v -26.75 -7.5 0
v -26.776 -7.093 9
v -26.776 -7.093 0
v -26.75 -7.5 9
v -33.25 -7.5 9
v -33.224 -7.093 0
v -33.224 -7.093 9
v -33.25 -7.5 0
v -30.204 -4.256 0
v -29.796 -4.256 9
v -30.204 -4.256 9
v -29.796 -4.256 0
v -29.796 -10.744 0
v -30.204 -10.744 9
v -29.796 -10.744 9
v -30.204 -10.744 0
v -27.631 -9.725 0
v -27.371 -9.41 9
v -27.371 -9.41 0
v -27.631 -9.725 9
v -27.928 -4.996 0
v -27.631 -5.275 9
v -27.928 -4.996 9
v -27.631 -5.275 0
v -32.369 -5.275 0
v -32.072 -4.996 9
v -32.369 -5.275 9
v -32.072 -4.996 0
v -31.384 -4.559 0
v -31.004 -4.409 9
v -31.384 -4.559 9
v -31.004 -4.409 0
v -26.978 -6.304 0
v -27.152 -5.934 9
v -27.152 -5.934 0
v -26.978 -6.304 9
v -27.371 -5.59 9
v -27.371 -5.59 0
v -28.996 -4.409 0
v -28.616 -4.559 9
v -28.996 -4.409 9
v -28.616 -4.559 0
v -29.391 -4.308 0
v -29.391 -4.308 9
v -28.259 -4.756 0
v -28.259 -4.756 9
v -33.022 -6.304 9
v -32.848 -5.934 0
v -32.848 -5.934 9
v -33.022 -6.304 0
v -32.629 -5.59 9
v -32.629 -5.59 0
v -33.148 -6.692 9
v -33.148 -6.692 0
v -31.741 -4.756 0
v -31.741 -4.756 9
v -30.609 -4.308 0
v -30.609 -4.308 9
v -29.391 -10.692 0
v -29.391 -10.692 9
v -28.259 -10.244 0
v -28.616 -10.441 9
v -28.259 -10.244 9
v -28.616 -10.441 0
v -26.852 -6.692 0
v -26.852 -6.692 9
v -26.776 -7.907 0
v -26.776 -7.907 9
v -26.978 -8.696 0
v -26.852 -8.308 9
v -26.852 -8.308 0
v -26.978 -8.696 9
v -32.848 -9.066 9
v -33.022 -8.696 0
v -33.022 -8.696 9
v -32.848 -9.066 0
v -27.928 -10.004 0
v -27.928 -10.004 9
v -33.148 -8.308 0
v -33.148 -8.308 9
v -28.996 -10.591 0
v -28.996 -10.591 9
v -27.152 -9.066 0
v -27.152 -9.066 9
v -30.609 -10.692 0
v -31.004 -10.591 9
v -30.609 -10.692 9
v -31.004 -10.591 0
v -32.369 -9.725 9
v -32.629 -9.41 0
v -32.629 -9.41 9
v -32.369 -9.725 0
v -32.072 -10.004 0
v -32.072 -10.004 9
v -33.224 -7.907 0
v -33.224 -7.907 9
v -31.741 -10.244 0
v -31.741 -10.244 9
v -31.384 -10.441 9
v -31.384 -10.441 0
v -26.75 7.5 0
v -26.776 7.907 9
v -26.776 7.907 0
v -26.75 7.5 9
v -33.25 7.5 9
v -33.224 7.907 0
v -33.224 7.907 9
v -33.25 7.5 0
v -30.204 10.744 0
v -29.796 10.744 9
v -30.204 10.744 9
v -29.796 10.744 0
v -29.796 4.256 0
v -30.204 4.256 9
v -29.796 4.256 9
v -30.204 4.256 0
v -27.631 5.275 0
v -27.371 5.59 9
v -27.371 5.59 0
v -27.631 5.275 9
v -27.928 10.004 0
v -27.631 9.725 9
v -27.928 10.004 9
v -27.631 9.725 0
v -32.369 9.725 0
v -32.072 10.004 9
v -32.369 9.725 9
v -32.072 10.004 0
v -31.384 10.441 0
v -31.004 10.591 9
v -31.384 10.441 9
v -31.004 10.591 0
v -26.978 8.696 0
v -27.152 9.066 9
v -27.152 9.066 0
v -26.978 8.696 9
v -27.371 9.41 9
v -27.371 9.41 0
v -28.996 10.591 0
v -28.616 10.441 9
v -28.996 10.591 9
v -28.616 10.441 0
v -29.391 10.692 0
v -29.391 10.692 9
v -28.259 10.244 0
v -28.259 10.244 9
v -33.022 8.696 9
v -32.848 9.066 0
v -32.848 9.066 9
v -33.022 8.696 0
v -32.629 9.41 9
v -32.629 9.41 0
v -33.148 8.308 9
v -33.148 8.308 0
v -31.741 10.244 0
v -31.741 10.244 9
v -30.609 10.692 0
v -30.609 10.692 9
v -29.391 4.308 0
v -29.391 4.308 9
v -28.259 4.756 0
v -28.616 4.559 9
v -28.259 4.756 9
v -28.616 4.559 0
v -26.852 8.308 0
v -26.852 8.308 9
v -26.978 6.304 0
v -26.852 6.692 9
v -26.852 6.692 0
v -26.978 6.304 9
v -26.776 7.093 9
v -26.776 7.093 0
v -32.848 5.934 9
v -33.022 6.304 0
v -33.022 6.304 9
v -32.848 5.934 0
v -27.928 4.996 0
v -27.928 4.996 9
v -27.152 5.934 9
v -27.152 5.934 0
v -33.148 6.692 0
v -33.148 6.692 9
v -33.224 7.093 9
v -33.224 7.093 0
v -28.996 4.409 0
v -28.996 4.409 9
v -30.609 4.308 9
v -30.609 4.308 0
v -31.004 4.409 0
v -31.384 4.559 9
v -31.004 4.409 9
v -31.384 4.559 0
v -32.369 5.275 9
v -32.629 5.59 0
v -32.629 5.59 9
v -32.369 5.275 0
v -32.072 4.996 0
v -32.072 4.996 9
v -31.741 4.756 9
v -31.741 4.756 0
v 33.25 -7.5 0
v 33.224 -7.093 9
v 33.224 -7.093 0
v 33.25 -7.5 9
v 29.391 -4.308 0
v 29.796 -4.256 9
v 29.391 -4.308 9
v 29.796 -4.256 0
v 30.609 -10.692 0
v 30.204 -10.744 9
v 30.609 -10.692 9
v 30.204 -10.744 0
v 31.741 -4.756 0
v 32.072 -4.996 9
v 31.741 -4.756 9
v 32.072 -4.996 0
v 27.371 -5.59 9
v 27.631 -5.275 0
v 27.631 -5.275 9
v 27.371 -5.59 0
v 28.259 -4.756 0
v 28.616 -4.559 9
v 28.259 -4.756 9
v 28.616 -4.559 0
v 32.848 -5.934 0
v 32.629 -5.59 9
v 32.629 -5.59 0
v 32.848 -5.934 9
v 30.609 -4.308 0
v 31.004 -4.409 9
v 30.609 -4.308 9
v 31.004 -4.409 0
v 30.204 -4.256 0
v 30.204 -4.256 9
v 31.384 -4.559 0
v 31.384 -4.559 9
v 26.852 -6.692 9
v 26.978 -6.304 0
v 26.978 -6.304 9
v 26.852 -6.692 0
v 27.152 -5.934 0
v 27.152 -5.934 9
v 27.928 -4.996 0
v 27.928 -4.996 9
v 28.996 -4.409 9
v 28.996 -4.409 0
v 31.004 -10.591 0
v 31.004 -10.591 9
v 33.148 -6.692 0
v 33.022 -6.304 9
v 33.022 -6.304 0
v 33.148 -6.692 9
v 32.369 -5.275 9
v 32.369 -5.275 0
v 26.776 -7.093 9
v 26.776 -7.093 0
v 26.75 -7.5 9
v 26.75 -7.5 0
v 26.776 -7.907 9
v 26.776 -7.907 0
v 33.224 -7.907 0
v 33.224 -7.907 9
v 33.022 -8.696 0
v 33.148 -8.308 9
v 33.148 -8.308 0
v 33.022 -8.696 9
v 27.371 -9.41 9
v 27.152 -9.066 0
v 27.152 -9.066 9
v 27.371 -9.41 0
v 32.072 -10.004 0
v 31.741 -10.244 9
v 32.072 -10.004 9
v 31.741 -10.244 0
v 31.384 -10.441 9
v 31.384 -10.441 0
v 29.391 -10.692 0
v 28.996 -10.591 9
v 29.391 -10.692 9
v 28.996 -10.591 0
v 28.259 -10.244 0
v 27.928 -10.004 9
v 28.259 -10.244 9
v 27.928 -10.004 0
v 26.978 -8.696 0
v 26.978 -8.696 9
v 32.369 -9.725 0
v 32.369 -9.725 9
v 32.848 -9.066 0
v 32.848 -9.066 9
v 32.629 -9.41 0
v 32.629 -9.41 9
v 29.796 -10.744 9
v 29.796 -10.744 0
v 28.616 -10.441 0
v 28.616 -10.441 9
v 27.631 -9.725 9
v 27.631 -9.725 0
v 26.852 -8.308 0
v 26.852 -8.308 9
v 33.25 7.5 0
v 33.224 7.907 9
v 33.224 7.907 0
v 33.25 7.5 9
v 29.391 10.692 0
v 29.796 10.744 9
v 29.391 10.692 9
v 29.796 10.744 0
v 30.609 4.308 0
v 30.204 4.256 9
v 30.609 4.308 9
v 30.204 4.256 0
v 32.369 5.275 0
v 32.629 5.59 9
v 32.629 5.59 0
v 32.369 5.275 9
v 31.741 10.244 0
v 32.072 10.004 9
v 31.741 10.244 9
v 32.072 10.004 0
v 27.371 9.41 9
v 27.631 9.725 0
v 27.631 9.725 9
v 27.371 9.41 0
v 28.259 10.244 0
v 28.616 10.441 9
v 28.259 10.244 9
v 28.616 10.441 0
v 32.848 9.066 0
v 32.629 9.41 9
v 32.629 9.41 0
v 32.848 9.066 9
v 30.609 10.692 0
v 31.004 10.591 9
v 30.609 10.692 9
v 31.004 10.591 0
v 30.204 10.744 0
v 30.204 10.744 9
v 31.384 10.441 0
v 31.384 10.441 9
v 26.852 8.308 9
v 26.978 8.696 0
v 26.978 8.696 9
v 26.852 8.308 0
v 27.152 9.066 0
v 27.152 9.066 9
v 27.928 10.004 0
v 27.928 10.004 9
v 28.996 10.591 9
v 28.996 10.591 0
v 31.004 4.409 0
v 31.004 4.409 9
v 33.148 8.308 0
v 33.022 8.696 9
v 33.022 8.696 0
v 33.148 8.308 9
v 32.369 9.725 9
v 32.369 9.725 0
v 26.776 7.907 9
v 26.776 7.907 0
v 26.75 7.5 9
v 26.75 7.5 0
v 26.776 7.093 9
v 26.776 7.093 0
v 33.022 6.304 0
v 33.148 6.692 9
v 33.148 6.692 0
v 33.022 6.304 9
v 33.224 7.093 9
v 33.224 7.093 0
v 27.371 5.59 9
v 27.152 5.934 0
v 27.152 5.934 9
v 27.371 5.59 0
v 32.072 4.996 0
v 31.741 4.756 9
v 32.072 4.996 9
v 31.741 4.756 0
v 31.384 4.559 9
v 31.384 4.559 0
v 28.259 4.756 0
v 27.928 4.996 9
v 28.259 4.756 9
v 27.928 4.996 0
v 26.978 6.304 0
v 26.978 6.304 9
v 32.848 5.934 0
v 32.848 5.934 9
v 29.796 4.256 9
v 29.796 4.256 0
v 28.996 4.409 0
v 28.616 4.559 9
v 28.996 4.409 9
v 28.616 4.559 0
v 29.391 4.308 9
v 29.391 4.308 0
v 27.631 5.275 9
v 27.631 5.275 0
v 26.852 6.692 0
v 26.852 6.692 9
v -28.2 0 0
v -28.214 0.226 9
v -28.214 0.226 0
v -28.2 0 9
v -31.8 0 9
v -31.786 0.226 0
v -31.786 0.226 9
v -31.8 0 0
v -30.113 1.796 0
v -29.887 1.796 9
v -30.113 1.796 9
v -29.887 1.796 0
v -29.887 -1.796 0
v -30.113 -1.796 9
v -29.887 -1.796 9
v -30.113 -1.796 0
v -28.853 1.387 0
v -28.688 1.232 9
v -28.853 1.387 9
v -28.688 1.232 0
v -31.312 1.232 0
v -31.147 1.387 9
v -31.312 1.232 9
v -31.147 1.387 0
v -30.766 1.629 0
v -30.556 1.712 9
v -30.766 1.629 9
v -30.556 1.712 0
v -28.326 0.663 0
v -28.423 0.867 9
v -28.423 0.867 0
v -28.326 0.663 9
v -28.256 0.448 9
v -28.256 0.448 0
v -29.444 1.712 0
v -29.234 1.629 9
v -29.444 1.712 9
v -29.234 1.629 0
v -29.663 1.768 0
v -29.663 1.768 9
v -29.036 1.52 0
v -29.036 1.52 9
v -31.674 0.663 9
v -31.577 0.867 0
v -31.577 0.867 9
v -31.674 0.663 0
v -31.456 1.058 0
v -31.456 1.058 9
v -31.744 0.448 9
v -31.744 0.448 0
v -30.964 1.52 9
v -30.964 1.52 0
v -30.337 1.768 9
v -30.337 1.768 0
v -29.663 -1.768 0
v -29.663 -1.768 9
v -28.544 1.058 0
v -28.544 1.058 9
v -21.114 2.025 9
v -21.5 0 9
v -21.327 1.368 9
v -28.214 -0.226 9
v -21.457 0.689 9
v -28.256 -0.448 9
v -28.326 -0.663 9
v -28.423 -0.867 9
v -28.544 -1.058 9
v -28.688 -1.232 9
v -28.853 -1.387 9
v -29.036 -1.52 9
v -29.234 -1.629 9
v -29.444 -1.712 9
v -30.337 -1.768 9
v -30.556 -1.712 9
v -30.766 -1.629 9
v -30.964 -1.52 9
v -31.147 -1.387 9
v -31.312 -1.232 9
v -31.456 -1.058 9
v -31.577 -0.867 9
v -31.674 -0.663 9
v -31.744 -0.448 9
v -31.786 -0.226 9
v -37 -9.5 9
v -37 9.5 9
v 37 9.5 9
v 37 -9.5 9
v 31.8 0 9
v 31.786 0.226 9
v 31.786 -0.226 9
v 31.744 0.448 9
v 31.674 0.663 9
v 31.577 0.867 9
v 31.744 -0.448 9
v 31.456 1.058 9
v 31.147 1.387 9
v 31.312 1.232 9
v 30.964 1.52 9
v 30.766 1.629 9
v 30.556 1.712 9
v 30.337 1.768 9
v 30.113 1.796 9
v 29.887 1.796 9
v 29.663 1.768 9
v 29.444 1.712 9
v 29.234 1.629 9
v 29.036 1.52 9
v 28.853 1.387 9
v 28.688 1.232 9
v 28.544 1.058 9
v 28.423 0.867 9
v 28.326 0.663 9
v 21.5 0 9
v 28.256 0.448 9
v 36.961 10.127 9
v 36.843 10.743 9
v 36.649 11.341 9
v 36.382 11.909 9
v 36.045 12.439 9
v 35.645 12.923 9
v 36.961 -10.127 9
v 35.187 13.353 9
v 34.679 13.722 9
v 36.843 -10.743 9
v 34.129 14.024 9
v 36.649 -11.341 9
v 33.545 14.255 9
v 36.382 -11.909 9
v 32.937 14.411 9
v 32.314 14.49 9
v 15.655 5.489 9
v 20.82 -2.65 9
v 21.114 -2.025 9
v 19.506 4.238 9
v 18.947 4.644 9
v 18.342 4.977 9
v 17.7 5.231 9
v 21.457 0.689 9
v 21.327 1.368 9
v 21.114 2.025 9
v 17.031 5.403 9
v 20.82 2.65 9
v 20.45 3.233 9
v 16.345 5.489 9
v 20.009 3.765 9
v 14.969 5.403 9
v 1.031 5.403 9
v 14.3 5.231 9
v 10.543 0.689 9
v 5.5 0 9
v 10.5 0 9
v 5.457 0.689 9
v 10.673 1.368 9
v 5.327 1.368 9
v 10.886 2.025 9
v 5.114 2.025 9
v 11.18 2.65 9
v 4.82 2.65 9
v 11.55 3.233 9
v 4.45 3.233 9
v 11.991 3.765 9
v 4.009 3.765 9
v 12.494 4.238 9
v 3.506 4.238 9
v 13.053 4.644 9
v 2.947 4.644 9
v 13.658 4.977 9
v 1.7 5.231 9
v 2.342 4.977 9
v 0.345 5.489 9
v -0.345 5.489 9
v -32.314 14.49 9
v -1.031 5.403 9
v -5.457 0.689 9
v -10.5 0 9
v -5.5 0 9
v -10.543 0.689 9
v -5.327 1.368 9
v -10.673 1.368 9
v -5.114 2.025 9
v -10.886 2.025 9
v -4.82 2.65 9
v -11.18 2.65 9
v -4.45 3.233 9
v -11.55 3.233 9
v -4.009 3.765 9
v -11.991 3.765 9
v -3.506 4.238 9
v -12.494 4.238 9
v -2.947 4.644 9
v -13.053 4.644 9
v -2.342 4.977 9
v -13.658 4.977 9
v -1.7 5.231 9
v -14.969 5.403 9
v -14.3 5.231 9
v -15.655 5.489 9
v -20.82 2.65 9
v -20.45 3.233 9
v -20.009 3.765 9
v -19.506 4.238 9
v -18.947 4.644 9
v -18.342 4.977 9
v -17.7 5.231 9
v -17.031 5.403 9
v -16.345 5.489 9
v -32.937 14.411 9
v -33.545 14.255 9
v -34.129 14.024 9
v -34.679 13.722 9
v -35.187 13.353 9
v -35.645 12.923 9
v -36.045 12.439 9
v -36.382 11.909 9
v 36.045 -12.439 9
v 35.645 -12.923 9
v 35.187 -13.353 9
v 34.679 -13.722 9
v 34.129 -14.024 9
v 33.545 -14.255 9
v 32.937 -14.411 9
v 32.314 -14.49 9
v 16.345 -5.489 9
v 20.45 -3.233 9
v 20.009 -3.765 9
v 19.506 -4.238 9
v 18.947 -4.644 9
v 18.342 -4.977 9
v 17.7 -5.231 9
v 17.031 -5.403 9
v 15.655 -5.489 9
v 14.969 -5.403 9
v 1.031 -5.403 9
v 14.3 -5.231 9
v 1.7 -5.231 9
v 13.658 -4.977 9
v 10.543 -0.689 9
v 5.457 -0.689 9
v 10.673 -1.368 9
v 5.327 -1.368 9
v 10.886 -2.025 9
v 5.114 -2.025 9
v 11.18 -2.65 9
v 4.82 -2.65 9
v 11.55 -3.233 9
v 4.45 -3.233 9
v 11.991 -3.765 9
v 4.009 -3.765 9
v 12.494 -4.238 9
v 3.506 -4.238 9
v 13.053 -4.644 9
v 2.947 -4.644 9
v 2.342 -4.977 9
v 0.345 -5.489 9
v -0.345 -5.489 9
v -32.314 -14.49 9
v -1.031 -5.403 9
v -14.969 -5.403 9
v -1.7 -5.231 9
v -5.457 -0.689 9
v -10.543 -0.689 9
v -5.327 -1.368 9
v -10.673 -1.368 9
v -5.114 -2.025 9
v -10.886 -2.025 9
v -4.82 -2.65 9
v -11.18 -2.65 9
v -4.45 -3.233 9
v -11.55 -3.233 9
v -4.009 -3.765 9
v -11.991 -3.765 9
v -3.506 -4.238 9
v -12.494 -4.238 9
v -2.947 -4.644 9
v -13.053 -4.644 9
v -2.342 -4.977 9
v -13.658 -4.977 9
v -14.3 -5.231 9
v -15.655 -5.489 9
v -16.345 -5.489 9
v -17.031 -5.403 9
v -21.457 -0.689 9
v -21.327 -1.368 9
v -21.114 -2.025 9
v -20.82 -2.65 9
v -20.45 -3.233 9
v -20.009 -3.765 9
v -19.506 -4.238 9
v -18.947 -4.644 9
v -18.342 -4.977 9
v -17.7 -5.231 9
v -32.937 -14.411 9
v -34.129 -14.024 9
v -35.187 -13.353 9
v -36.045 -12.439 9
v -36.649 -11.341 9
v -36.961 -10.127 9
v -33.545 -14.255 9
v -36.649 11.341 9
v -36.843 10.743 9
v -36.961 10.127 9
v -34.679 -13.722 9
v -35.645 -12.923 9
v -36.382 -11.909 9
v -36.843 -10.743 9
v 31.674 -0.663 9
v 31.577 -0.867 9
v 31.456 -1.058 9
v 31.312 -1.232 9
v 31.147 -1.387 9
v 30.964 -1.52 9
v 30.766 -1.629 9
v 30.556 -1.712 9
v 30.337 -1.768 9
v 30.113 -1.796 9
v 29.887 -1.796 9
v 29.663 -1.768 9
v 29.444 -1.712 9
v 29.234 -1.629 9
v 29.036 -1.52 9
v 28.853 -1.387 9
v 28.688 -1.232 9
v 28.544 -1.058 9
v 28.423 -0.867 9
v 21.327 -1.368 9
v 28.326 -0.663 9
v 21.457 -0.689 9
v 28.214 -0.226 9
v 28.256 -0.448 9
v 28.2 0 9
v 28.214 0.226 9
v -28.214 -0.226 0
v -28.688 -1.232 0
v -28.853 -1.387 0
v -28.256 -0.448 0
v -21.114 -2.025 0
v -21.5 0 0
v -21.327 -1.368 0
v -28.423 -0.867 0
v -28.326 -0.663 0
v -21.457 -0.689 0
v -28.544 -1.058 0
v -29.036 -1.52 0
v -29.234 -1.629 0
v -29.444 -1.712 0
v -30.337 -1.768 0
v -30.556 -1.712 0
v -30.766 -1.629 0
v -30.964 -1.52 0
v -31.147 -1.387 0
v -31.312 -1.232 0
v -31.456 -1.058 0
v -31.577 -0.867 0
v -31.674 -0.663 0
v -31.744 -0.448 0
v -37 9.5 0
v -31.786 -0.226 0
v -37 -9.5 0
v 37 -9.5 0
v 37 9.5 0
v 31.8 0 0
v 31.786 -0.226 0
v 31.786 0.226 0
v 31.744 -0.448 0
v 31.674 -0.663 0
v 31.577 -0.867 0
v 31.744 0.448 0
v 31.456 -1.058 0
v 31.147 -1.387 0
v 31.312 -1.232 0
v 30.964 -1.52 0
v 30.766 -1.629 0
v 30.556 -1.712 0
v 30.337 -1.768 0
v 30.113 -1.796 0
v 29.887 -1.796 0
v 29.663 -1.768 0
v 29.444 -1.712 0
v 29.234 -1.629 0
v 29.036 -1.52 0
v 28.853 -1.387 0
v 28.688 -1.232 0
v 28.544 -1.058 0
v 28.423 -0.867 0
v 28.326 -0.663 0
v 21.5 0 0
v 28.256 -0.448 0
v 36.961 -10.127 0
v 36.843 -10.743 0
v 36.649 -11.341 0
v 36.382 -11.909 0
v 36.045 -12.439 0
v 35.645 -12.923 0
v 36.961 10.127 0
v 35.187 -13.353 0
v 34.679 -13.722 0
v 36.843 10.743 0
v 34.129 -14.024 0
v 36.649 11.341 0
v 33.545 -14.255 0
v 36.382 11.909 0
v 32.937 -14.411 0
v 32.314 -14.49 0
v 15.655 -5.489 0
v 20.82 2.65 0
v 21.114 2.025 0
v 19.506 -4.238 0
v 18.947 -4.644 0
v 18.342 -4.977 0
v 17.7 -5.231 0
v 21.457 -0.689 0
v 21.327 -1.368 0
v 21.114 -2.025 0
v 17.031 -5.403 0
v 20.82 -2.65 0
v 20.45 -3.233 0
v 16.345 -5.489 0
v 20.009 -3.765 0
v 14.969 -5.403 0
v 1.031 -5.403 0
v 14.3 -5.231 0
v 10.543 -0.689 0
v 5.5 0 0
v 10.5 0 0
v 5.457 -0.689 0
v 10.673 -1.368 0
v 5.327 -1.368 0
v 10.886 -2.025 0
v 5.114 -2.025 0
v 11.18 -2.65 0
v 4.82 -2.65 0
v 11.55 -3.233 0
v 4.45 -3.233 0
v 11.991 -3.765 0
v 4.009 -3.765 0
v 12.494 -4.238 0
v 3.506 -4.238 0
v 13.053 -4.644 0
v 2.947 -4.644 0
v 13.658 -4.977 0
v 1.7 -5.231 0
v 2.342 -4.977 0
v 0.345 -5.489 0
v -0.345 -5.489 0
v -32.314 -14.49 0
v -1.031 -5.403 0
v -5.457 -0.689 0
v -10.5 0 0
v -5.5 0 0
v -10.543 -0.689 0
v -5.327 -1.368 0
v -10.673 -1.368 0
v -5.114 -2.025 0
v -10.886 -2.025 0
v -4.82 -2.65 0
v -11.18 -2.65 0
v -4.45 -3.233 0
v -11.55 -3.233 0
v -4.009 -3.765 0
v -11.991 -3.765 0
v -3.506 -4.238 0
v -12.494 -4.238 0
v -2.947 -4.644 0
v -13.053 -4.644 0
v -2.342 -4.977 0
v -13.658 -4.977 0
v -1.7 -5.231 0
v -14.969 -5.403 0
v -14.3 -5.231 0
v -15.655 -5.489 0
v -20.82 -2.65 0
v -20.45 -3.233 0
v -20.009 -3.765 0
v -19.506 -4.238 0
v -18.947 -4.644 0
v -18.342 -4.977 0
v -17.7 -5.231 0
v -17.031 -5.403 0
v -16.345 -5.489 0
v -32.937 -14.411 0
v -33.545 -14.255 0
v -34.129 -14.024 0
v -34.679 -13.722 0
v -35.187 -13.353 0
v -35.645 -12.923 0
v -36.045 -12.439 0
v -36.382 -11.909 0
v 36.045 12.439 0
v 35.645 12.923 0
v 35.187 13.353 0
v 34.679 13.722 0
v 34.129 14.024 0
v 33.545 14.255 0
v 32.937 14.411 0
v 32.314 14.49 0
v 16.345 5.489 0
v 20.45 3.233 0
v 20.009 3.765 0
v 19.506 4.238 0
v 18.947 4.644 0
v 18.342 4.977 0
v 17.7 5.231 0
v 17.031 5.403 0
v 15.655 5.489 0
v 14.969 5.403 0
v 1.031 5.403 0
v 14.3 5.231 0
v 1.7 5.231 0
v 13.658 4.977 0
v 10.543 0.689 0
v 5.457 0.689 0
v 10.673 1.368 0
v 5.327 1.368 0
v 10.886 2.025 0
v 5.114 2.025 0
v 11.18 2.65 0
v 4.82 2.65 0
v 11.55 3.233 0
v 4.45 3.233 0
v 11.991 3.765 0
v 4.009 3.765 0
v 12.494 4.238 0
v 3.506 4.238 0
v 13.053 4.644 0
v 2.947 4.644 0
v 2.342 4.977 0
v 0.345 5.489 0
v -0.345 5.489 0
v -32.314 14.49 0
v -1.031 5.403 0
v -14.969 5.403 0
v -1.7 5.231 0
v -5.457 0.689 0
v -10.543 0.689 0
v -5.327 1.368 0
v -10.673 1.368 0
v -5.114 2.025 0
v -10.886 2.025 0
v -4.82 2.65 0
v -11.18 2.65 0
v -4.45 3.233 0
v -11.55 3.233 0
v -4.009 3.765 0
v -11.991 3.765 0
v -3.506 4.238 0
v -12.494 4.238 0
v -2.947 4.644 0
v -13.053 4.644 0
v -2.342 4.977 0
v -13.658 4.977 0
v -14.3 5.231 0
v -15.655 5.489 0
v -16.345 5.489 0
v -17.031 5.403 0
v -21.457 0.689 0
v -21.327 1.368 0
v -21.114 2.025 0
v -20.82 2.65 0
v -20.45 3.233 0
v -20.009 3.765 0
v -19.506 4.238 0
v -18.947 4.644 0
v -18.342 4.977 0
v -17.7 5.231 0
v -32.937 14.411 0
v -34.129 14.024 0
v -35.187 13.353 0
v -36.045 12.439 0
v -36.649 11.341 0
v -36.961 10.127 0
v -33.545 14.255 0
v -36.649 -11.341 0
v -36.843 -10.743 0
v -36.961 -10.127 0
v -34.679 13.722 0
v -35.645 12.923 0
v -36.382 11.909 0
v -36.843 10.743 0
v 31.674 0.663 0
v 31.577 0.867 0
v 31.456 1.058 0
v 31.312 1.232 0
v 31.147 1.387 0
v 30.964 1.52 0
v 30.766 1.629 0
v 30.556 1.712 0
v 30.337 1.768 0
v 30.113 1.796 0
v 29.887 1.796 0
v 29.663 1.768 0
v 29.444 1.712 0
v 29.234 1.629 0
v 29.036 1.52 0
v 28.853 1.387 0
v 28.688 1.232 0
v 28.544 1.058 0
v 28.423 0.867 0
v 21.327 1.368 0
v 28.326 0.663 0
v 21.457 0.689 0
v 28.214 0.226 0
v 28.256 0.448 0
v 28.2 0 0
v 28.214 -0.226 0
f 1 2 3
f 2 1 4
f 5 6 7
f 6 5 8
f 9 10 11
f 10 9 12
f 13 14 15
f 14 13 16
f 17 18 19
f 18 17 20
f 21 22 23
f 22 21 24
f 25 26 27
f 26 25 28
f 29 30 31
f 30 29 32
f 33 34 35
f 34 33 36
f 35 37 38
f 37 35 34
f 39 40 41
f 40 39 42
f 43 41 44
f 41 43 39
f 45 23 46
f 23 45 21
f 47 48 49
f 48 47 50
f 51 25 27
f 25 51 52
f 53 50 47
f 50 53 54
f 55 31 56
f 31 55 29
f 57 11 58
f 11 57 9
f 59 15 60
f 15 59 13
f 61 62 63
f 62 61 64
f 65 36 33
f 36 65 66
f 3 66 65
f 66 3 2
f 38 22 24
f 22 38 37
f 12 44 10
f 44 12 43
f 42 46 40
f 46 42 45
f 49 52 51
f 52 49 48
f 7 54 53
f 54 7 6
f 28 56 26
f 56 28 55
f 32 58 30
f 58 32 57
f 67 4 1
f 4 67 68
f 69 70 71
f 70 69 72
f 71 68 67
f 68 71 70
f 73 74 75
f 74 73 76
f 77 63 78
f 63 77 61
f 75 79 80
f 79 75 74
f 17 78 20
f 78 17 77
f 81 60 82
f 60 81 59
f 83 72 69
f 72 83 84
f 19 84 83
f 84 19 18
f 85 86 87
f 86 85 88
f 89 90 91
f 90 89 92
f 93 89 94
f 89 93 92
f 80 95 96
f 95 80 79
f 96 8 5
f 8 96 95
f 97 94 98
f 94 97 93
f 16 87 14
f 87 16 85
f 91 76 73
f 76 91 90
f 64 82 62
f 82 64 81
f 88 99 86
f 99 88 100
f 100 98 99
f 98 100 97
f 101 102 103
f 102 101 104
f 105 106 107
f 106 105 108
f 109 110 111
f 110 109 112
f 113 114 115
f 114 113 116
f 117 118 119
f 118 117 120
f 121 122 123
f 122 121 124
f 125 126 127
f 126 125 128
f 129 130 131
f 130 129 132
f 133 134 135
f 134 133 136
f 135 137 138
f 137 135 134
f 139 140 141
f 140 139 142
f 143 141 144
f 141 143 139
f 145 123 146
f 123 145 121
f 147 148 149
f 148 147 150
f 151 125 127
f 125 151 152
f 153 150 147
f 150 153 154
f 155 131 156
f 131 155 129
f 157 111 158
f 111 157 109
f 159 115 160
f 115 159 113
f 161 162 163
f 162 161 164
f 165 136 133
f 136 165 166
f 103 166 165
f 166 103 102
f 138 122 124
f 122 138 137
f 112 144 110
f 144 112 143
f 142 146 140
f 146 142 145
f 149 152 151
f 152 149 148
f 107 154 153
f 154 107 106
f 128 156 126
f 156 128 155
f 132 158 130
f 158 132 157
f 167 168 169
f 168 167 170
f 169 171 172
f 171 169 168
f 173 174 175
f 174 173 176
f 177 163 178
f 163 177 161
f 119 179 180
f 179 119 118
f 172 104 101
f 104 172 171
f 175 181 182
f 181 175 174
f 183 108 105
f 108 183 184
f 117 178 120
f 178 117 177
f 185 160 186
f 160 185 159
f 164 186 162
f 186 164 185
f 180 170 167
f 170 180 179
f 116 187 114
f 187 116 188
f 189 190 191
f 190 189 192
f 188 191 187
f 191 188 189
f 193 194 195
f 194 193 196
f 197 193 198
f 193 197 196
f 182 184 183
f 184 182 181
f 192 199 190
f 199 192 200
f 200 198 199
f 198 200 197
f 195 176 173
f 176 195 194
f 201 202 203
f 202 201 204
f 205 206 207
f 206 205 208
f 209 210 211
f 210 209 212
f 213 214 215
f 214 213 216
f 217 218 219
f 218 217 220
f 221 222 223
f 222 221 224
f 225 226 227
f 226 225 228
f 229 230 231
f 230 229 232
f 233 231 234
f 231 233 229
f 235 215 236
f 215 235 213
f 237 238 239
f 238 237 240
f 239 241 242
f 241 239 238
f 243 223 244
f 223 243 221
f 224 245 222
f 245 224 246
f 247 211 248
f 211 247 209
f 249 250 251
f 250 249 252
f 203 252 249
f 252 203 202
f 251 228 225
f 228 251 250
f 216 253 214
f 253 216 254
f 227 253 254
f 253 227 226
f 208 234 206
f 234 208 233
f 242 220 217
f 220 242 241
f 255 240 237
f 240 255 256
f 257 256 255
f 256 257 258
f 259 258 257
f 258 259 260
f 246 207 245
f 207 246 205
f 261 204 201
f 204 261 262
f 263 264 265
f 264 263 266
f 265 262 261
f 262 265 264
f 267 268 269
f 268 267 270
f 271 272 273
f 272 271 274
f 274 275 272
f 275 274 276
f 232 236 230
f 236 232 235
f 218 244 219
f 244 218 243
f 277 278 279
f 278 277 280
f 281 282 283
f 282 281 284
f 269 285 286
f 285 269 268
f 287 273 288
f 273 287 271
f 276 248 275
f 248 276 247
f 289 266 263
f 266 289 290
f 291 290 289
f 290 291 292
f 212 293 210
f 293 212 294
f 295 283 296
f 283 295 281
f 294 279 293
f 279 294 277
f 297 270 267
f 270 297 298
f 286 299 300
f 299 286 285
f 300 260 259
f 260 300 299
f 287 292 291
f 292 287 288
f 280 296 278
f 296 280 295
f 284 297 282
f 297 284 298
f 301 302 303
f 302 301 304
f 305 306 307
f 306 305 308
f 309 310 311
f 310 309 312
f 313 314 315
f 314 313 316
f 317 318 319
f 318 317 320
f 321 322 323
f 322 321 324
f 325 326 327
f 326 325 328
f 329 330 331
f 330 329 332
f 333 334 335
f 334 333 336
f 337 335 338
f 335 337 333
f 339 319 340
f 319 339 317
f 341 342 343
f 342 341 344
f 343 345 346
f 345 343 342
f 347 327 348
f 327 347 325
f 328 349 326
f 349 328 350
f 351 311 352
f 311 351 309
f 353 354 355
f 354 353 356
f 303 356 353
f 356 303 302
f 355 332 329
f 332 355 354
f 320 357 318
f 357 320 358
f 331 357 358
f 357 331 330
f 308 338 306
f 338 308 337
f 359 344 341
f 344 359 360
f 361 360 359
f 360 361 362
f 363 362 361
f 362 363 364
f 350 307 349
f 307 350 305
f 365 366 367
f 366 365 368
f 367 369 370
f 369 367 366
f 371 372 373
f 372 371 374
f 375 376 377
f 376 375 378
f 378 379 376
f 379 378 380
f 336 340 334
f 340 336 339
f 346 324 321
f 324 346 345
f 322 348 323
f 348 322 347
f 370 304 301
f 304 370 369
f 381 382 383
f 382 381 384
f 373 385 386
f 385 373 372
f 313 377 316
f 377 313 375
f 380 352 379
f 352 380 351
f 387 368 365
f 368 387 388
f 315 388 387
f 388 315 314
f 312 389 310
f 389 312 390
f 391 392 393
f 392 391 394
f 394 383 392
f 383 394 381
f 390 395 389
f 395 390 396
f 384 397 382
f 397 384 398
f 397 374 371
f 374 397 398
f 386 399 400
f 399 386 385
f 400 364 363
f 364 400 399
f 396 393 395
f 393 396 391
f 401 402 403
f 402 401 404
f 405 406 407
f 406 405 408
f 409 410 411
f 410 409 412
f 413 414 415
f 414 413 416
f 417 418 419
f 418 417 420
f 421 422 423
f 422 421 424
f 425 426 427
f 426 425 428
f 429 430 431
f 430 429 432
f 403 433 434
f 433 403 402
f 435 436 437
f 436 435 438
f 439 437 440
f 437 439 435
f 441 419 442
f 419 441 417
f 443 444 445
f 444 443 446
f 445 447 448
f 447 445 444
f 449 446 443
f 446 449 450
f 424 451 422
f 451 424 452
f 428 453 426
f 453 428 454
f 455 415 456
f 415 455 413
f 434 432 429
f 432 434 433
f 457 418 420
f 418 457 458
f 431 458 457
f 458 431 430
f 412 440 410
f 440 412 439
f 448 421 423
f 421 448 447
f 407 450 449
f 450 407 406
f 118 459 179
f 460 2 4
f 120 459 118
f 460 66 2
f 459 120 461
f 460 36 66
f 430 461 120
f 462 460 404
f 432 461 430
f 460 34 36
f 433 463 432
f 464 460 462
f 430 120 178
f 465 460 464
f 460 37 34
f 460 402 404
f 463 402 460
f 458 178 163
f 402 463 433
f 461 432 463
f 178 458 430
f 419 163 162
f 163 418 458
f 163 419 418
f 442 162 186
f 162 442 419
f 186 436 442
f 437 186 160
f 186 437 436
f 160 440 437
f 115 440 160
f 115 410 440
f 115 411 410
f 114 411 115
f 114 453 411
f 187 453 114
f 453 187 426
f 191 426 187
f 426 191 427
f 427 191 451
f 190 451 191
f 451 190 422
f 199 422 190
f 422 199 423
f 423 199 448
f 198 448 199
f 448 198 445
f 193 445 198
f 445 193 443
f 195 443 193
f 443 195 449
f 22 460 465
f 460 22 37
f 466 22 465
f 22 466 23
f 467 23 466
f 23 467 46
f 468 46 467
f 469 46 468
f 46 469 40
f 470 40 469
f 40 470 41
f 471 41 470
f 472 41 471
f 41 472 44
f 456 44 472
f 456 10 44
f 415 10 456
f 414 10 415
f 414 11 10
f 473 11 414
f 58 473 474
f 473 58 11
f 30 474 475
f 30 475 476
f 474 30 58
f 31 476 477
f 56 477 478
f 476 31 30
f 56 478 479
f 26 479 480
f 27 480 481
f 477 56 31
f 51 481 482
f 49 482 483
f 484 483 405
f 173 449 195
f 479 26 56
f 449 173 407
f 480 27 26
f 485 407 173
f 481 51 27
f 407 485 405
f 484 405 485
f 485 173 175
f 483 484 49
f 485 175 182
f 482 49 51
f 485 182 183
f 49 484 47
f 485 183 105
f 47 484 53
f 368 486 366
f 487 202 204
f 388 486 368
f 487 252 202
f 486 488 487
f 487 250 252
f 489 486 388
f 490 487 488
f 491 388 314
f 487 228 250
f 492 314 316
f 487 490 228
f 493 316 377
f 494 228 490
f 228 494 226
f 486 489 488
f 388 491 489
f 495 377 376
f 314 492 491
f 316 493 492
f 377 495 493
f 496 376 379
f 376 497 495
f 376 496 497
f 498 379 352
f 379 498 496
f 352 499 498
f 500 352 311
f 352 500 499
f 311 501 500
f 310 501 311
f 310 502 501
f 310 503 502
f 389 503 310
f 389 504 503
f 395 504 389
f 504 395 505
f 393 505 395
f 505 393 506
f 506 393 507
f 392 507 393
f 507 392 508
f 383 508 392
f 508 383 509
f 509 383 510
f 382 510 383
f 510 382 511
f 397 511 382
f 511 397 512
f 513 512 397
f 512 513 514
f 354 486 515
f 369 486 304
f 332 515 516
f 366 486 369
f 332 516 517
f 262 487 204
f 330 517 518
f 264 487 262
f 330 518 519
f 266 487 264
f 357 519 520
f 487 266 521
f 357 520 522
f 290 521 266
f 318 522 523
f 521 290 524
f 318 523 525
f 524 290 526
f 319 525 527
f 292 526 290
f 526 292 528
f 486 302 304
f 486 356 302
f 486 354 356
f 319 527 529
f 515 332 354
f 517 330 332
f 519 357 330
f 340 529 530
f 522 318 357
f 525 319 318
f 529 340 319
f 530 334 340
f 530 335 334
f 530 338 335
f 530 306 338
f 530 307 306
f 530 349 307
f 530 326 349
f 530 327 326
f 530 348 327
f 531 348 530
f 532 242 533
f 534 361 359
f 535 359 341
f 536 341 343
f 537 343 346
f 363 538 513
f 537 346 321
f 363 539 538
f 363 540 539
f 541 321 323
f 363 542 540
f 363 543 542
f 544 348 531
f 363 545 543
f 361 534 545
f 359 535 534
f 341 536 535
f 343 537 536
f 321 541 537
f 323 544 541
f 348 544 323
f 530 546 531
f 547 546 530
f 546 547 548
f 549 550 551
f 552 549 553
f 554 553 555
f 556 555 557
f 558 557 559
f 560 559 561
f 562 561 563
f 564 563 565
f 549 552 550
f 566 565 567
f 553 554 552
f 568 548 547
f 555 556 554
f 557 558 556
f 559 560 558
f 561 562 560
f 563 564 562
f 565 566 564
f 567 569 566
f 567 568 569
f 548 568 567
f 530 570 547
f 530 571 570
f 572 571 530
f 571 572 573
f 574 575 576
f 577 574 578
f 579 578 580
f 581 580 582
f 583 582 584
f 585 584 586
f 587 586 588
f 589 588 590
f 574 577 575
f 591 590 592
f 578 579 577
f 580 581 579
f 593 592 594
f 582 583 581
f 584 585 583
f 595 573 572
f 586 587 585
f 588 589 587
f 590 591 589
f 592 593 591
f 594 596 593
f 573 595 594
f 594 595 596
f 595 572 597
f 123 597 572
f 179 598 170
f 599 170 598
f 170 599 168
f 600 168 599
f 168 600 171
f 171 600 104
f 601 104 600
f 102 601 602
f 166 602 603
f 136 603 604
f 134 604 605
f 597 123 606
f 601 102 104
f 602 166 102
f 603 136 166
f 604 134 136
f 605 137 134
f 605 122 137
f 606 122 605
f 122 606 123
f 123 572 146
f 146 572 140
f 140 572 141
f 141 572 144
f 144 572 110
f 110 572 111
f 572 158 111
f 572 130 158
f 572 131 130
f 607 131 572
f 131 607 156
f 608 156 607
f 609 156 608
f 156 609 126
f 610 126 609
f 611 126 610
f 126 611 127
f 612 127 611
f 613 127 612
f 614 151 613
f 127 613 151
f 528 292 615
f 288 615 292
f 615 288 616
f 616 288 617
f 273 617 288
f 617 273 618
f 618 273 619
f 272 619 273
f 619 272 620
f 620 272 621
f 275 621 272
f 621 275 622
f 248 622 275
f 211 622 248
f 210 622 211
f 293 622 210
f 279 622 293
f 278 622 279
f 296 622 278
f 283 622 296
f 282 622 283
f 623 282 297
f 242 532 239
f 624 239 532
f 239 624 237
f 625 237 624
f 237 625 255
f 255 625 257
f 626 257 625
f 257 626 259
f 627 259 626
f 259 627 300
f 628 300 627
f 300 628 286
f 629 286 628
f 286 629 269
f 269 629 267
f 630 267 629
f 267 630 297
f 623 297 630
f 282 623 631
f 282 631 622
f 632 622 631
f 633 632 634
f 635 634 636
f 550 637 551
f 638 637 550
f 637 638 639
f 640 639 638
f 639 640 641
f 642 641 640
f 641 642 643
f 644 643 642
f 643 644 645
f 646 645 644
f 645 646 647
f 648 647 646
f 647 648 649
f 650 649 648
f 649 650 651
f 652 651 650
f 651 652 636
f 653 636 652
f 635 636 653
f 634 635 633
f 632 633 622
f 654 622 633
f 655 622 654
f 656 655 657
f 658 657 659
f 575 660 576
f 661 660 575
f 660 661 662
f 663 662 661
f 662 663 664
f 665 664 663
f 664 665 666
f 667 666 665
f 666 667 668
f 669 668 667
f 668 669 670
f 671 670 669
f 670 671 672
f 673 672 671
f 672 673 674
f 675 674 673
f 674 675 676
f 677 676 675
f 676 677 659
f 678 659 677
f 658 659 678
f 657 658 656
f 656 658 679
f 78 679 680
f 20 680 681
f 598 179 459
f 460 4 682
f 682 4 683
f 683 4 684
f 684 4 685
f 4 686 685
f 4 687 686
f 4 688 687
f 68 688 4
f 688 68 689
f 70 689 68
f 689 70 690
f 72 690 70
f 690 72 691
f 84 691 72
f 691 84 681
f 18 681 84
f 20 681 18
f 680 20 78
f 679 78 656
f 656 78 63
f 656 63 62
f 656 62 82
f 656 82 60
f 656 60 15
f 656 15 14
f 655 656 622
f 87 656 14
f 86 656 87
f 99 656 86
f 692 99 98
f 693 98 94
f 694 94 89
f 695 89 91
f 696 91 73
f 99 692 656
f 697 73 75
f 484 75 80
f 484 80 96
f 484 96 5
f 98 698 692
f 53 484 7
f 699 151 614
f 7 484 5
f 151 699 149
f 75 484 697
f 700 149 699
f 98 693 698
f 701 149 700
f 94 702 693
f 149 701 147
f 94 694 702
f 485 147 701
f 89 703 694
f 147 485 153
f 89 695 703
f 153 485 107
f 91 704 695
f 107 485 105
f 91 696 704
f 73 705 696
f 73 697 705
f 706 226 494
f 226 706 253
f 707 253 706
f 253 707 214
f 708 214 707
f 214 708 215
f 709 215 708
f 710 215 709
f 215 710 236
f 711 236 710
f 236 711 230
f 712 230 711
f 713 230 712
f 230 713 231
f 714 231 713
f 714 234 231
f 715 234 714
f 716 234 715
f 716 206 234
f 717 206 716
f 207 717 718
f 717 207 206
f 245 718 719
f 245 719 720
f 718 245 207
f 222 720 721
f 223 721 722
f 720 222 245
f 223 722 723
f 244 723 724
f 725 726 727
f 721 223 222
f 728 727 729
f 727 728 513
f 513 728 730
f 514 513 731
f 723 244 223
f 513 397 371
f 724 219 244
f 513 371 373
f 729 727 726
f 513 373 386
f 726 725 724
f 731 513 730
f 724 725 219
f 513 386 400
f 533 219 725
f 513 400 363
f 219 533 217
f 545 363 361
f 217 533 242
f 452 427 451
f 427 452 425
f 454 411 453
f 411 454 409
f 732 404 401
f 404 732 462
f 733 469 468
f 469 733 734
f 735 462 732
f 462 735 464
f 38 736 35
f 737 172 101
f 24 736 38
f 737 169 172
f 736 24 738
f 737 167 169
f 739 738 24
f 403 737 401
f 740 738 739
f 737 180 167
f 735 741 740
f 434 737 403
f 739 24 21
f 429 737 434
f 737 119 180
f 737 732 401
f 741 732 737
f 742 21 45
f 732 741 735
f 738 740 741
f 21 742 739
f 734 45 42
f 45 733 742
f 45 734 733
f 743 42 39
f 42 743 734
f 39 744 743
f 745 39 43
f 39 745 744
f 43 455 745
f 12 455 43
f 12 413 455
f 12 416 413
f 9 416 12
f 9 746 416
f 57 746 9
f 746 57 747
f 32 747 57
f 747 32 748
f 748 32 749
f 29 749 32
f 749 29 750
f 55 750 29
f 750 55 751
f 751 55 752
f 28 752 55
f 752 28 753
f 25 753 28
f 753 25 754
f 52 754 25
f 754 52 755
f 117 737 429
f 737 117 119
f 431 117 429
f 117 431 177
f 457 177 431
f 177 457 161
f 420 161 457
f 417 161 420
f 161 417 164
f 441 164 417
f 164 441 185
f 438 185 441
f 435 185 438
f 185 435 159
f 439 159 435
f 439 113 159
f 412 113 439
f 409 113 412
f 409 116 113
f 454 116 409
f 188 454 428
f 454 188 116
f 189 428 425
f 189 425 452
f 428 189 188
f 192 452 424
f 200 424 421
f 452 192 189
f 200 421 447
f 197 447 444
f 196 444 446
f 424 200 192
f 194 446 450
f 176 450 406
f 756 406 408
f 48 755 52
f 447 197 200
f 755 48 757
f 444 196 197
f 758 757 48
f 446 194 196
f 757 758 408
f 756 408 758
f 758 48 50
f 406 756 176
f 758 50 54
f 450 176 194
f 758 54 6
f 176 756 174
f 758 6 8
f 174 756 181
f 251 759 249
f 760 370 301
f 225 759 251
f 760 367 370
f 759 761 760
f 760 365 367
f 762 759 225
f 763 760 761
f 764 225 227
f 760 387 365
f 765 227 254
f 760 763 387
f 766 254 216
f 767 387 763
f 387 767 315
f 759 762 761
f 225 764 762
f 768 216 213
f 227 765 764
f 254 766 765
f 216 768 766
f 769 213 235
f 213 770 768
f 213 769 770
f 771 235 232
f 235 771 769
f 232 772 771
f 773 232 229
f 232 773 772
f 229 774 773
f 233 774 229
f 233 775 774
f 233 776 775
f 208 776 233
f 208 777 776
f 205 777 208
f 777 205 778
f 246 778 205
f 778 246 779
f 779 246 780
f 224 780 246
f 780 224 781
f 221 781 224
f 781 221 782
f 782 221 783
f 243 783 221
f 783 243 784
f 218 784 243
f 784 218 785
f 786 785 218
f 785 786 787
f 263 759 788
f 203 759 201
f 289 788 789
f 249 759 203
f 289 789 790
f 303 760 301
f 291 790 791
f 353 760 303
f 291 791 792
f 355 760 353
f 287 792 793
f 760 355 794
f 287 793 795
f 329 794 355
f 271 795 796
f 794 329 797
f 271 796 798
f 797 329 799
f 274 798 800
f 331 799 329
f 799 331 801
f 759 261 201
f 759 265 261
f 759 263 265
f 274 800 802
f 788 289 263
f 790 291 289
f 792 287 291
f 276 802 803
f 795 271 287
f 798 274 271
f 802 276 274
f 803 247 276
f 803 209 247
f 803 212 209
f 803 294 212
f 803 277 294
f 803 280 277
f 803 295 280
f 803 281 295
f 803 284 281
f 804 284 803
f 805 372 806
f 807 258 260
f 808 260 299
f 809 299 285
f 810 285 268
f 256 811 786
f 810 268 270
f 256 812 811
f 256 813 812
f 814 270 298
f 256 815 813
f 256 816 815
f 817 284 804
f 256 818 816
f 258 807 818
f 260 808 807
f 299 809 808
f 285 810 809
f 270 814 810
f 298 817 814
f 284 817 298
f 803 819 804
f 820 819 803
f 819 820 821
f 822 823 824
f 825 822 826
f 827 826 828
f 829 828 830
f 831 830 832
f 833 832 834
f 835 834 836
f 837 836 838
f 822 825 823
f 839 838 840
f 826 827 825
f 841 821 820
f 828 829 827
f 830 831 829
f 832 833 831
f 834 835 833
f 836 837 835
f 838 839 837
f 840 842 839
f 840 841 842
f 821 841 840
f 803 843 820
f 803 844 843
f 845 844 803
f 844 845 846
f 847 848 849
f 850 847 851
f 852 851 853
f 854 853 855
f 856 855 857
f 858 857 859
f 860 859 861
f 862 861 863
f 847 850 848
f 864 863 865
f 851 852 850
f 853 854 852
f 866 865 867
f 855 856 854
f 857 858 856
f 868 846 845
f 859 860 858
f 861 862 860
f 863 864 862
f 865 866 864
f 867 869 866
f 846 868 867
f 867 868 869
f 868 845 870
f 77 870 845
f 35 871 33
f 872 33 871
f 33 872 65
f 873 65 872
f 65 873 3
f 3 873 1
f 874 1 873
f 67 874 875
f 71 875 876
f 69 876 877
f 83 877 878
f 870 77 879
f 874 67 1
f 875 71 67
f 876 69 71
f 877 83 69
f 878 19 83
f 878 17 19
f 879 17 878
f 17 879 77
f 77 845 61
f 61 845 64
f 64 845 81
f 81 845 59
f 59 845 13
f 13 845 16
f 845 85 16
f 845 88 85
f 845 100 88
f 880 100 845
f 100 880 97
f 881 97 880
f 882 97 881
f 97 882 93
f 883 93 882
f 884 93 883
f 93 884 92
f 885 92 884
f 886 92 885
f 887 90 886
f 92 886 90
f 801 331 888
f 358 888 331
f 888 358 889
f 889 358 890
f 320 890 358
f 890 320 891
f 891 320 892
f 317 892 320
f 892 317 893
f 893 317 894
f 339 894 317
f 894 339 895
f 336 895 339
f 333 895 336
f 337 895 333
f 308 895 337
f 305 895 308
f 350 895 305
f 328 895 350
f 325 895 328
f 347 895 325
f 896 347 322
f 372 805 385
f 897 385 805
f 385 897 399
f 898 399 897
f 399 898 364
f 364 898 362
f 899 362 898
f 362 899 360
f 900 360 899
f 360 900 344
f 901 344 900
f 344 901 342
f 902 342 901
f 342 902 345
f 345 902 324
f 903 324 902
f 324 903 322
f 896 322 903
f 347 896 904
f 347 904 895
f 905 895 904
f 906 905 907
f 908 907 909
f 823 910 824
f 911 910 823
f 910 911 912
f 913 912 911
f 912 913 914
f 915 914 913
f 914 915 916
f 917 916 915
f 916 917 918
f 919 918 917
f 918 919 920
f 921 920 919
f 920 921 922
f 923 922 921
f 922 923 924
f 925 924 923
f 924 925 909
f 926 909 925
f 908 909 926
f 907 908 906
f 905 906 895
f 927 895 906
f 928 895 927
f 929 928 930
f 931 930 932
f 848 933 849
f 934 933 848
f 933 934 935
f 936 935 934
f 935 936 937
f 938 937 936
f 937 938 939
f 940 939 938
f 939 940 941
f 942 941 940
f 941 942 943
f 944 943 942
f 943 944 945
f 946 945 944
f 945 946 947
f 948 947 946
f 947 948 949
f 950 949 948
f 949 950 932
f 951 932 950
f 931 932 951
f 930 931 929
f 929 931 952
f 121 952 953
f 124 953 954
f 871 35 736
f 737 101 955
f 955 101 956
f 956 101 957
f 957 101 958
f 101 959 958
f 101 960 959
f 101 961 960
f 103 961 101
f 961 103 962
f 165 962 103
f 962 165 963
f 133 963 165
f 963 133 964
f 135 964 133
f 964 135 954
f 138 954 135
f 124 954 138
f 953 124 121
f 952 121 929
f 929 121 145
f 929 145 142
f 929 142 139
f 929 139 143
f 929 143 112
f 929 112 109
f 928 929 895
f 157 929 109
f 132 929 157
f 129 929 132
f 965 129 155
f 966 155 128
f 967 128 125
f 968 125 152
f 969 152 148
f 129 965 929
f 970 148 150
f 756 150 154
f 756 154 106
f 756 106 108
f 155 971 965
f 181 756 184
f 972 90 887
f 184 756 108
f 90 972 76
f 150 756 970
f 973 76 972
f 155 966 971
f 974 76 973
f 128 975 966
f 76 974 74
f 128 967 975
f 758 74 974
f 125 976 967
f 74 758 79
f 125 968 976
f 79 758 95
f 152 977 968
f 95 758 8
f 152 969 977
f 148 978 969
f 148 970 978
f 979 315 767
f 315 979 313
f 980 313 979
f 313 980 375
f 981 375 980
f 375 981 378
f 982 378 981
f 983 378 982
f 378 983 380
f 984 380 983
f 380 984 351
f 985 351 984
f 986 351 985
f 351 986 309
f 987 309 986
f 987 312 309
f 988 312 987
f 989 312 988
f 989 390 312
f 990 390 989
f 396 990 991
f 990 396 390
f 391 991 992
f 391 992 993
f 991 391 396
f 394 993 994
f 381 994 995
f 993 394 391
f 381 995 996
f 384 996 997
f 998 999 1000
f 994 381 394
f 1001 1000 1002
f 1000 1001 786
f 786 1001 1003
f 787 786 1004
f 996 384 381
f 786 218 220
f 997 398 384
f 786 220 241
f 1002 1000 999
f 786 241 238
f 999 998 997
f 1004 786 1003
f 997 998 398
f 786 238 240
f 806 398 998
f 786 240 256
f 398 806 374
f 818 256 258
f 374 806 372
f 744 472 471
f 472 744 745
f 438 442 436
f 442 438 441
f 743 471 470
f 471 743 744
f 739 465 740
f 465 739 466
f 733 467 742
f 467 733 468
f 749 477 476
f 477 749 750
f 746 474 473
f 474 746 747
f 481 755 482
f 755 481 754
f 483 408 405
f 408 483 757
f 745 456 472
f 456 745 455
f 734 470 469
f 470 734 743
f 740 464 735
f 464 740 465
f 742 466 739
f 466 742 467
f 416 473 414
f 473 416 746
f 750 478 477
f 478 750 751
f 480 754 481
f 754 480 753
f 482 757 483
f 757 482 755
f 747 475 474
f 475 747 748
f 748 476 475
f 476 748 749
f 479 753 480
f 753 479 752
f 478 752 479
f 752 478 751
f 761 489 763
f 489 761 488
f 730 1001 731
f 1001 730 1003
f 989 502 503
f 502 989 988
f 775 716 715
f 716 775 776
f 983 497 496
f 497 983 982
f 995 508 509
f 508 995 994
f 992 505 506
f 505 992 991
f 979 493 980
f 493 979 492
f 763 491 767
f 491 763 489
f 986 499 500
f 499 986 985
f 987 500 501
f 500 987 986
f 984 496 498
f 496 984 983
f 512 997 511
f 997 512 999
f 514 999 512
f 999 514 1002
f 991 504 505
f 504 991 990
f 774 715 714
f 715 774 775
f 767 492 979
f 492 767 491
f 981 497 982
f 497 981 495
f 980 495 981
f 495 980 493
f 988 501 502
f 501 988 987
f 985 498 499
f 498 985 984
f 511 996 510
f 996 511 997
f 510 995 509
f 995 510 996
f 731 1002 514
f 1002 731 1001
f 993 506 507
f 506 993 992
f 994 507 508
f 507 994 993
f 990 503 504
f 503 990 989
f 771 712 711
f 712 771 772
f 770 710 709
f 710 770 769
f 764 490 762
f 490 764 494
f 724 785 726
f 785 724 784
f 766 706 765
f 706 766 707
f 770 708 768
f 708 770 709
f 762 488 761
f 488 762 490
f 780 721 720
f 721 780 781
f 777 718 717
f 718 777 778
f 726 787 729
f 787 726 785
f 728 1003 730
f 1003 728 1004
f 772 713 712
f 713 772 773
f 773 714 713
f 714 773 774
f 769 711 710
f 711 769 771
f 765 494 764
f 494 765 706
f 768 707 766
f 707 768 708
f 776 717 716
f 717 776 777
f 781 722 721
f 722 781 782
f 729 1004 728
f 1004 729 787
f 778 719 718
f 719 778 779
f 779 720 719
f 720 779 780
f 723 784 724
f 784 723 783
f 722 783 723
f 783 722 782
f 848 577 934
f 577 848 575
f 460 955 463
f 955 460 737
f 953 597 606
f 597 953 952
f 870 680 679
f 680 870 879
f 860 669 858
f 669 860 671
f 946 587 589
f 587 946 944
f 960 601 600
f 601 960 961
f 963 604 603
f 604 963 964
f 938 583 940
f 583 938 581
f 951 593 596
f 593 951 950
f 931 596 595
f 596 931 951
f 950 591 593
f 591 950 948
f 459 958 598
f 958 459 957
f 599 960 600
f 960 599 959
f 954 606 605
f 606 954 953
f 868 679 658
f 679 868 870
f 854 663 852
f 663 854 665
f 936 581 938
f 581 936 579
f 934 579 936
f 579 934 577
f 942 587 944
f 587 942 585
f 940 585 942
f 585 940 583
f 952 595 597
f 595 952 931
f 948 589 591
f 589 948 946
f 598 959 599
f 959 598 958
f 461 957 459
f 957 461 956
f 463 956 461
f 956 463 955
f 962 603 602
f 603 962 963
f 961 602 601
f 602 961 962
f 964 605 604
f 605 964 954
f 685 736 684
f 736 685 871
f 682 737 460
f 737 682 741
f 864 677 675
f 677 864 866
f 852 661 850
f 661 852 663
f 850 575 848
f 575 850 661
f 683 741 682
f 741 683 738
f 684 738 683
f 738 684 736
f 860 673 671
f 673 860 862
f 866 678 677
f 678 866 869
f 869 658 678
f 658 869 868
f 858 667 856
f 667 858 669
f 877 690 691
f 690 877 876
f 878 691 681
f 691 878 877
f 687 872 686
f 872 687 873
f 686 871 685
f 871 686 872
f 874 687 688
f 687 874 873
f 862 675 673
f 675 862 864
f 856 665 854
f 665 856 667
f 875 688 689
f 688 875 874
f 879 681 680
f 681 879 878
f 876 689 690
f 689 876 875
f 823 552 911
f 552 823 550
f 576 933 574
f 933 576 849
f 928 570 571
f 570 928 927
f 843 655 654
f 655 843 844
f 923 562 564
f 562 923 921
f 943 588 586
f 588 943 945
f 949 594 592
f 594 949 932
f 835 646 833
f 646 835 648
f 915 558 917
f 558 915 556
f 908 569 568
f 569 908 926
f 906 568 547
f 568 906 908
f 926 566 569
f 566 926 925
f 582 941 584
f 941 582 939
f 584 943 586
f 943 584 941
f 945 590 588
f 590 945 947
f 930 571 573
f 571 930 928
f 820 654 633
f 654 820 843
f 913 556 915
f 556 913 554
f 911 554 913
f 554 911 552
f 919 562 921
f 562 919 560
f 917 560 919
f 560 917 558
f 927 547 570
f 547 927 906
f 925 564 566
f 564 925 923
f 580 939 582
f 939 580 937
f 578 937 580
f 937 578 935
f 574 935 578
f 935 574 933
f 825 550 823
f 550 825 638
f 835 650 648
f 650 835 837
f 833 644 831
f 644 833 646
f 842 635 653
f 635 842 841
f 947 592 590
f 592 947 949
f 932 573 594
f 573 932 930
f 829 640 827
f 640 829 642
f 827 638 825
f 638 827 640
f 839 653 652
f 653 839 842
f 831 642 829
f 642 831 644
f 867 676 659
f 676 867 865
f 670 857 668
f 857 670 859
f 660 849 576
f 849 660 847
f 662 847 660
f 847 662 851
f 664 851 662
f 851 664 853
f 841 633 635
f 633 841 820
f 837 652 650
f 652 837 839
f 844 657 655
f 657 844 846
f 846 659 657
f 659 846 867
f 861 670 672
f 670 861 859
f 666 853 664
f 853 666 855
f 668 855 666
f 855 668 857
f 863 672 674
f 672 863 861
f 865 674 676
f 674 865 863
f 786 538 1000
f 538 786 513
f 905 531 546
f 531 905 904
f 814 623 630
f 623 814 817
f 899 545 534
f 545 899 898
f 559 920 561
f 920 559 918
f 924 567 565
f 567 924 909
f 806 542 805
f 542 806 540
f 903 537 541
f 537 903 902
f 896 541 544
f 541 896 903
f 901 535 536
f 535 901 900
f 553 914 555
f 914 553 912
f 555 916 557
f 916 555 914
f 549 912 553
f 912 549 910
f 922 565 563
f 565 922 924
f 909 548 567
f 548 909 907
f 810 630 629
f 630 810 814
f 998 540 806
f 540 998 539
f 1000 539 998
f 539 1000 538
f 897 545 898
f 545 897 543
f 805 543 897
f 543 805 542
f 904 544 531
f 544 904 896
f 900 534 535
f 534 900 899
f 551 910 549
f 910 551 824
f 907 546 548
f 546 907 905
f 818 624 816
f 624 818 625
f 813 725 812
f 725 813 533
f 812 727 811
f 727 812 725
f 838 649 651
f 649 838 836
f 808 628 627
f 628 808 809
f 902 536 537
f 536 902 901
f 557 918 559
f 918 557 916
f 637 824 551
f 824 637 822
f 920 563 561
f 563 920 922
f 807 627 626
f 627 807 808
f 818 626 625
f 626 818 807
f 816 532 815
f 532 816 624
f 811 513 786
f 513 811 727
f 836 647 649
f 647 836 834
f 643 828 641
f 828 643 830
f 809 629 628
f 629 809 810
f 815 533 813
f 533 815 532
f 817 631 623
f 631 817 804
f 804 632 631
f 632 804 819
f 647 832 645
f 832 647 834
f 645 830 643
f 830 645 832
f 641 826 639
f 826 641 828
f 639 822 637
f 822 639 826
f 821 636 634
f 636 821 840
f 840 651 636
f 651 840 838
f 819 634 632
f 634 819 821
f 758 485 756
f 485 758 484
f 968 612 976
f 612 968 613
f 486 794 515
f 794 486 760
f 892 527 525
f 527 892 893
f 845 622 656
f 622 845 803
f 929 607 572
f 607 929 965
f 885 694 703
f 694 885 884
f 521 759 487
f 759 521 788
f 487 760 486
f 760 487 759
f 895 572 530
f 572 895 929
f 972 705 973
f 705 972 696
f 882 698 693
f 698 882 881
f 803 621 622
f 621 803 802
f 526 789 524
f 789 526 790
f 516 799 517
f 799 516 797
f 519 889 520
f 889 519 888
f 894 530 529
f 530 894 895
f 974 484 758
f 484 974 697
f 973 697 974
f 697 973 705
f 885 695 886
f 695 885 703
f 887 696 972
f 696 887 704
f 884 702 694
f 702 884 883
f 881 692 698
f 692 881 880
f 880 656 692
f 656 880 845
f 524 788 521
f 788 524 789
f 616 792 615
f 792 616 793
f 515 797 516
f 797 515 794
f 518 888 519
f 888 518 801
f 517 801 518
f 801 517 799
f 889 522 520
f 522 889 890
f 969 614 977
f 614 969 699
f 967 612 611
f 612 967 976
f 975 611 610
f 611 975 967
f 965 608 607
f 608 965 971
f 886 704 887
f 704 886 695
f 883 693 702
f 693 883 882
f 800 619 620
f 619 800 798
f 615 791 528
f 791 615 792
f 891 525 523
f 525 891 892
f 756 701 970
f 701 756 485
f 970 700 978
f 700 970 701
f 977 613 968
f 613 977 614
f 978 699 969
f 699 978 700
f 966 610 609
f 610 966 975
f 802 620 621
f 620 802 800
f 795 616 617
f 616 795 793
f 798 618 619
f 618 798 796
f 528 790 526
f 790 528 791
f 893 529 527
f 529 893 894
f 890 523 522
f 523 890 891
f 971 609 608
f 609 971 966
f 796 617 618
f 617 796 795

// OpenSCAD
$fn = 50;


difference() {
	union() {
		hull() {
			translate(v = [-32.0000000000, 9.5000000000, 0]) {
				cylinder(h = 9, r = 5);
			}
			translate(v = [32.0000000000, 9.5000000000, 0]) {
				cylinder(h = 9, r = 5);
			}
			translate(v = [-32.0000000000, -9.5000000000, 0]) {
				cylinder(h = 9, r = 5);
			}
			translate(v = [32.0000000000, -9.5000000000, 0]) {
				cylinder(h = 9, r = 5);
			}
		}
	}
	union() {
		#translate(v = [-30.0000000000, -7.5000000000, 0]) {
			cylinder(h = 9, r = 3.2500000000);
		}
		#translate(v = [-30.0000000000, 7.5000000000, 0]) {
			cylinder(h = 9, r = 3.2500000000);
		}
		#translate(v = [30.0000000000, -7.5000000000, 0]) {
			cylinder(h = 9, r = 3.2500000000);
		}
		#translate(v = [30.0000000000, 7.5000000000, 0]) {
			cylinder(h = 9, r = 3.2500000000);
		}
		#translate(v = [-30.0000000000, -7.5000000000, -100.0000000000]) {
			cylinder(h = 200, r = 3.2500000000);
		}
		#translate(v = [-30.0000000000, 7.5000000000, -100.0000000000]) {
			cylinder(h = 200, r = 3.2500000000);
		}
		#translate(v = [30.0000000000, -7.5000000000, -100.0000000000]) {
			cylinder(h = 200, r = 3.2500000000);
		}
		#translate(v = [30.0000000000, 7.5000000000, -100.0000000000]) {
			cylinder(h = 200, r = 3.2500000000);
		}
		#translate(v = [-30.0000000000, -7.5000000000, 0]) {
			cylinder(h = 9, r = 1.8000000000);
		}
		#translate(v = [-30.0000000000, 0.0000000000, 0]) {
			cylinder(h = 9, r = 1.8000000000);
		}
		#translate(v = [-30.0000000000, 7.5000000000, 0]) {
			cylinder(h = 9, r = 1.8000000000);
		}
		#translate(v = [30.0000000000, -7.5000000000, 0]) {
			cylinder(h = 9, r = 1.8000000000);
		}
		#translate(v = [30.0000000000, 0.0000000000, 0]) {
			cylinder(h = 9, r = 1.8000000000);
		}
		#translate(v = [30.0000000000, 7.5000000000, 0]) {
			cylinder(h = 9, r = 1.8000000000);
		}
		#translate(v = [-30.0000000000, -7.5000000000, 0]) {
			cylinder(h = 9, r = 1.8000000000);
		}
		#translate(v = [-30.0000000000, 0.0000000000, 0]) {
			cylinder(h = 9, r = 1.8000000000);
		}
		#translate(v = [-30.0000000000, 7.5000000000, 0]) {
			cylinder(h = 9, r = 1.8000000000);
		}
		#translate(v = [30.0000000000, -7.5000000000, 0]) {
			cylinder(h = 9, r = 1.8000000000);
		}
		#translate(v = [30.0000000000, 0.0000000000, 0]) {
			cylinder(h = 9, r = 1.8000000000);
		}
		#translate(v = [30.0000000000, 7.5000000000, 0]) {
			cylinder(h = 9, r = 1.8000000000);
		}
		#translate(v = [-30.0000000000, -7.5000000000, 0]) {
			cylinder(h = 9, r = 1.8000000000);
		}
		#translate(v = [-30.0000000000, 0.0000000000, 0]) {
			cylinder(h = 9, r = 1.8000000000);
		}
		#translate(v = [-30.0000000000, 7.5000000000, 0]) {
			cylinder(h = 9, r = 1.8000000000);
		}
		#translate(v = [30.0000000000, -7.5000000000, 0]) {
			cylinder(h = 9, r = 1.8000000000);
		}
		#translate(v = [30.0000000000, 0.0000000000, 0]) {
			cylinder(h = 9, r = 1.8000000000);
		}
		#translate(v = [30.0000000000, 7.5000000000, 0]) {
			cylinder(h = 9, r = 1.8000000000);
		}
		#translate(v = [-16.0000000000, 0, 0]) {
			cylinder(h = 9, r = 5.5000000000);
		}
		#cylinder(h = 9, r = 5.5000000000);
		#translate(v = [16.0000000000, 0, 0]) {
			cylinder(h = 9, r = 5.5000000000);
		}
	}
}
